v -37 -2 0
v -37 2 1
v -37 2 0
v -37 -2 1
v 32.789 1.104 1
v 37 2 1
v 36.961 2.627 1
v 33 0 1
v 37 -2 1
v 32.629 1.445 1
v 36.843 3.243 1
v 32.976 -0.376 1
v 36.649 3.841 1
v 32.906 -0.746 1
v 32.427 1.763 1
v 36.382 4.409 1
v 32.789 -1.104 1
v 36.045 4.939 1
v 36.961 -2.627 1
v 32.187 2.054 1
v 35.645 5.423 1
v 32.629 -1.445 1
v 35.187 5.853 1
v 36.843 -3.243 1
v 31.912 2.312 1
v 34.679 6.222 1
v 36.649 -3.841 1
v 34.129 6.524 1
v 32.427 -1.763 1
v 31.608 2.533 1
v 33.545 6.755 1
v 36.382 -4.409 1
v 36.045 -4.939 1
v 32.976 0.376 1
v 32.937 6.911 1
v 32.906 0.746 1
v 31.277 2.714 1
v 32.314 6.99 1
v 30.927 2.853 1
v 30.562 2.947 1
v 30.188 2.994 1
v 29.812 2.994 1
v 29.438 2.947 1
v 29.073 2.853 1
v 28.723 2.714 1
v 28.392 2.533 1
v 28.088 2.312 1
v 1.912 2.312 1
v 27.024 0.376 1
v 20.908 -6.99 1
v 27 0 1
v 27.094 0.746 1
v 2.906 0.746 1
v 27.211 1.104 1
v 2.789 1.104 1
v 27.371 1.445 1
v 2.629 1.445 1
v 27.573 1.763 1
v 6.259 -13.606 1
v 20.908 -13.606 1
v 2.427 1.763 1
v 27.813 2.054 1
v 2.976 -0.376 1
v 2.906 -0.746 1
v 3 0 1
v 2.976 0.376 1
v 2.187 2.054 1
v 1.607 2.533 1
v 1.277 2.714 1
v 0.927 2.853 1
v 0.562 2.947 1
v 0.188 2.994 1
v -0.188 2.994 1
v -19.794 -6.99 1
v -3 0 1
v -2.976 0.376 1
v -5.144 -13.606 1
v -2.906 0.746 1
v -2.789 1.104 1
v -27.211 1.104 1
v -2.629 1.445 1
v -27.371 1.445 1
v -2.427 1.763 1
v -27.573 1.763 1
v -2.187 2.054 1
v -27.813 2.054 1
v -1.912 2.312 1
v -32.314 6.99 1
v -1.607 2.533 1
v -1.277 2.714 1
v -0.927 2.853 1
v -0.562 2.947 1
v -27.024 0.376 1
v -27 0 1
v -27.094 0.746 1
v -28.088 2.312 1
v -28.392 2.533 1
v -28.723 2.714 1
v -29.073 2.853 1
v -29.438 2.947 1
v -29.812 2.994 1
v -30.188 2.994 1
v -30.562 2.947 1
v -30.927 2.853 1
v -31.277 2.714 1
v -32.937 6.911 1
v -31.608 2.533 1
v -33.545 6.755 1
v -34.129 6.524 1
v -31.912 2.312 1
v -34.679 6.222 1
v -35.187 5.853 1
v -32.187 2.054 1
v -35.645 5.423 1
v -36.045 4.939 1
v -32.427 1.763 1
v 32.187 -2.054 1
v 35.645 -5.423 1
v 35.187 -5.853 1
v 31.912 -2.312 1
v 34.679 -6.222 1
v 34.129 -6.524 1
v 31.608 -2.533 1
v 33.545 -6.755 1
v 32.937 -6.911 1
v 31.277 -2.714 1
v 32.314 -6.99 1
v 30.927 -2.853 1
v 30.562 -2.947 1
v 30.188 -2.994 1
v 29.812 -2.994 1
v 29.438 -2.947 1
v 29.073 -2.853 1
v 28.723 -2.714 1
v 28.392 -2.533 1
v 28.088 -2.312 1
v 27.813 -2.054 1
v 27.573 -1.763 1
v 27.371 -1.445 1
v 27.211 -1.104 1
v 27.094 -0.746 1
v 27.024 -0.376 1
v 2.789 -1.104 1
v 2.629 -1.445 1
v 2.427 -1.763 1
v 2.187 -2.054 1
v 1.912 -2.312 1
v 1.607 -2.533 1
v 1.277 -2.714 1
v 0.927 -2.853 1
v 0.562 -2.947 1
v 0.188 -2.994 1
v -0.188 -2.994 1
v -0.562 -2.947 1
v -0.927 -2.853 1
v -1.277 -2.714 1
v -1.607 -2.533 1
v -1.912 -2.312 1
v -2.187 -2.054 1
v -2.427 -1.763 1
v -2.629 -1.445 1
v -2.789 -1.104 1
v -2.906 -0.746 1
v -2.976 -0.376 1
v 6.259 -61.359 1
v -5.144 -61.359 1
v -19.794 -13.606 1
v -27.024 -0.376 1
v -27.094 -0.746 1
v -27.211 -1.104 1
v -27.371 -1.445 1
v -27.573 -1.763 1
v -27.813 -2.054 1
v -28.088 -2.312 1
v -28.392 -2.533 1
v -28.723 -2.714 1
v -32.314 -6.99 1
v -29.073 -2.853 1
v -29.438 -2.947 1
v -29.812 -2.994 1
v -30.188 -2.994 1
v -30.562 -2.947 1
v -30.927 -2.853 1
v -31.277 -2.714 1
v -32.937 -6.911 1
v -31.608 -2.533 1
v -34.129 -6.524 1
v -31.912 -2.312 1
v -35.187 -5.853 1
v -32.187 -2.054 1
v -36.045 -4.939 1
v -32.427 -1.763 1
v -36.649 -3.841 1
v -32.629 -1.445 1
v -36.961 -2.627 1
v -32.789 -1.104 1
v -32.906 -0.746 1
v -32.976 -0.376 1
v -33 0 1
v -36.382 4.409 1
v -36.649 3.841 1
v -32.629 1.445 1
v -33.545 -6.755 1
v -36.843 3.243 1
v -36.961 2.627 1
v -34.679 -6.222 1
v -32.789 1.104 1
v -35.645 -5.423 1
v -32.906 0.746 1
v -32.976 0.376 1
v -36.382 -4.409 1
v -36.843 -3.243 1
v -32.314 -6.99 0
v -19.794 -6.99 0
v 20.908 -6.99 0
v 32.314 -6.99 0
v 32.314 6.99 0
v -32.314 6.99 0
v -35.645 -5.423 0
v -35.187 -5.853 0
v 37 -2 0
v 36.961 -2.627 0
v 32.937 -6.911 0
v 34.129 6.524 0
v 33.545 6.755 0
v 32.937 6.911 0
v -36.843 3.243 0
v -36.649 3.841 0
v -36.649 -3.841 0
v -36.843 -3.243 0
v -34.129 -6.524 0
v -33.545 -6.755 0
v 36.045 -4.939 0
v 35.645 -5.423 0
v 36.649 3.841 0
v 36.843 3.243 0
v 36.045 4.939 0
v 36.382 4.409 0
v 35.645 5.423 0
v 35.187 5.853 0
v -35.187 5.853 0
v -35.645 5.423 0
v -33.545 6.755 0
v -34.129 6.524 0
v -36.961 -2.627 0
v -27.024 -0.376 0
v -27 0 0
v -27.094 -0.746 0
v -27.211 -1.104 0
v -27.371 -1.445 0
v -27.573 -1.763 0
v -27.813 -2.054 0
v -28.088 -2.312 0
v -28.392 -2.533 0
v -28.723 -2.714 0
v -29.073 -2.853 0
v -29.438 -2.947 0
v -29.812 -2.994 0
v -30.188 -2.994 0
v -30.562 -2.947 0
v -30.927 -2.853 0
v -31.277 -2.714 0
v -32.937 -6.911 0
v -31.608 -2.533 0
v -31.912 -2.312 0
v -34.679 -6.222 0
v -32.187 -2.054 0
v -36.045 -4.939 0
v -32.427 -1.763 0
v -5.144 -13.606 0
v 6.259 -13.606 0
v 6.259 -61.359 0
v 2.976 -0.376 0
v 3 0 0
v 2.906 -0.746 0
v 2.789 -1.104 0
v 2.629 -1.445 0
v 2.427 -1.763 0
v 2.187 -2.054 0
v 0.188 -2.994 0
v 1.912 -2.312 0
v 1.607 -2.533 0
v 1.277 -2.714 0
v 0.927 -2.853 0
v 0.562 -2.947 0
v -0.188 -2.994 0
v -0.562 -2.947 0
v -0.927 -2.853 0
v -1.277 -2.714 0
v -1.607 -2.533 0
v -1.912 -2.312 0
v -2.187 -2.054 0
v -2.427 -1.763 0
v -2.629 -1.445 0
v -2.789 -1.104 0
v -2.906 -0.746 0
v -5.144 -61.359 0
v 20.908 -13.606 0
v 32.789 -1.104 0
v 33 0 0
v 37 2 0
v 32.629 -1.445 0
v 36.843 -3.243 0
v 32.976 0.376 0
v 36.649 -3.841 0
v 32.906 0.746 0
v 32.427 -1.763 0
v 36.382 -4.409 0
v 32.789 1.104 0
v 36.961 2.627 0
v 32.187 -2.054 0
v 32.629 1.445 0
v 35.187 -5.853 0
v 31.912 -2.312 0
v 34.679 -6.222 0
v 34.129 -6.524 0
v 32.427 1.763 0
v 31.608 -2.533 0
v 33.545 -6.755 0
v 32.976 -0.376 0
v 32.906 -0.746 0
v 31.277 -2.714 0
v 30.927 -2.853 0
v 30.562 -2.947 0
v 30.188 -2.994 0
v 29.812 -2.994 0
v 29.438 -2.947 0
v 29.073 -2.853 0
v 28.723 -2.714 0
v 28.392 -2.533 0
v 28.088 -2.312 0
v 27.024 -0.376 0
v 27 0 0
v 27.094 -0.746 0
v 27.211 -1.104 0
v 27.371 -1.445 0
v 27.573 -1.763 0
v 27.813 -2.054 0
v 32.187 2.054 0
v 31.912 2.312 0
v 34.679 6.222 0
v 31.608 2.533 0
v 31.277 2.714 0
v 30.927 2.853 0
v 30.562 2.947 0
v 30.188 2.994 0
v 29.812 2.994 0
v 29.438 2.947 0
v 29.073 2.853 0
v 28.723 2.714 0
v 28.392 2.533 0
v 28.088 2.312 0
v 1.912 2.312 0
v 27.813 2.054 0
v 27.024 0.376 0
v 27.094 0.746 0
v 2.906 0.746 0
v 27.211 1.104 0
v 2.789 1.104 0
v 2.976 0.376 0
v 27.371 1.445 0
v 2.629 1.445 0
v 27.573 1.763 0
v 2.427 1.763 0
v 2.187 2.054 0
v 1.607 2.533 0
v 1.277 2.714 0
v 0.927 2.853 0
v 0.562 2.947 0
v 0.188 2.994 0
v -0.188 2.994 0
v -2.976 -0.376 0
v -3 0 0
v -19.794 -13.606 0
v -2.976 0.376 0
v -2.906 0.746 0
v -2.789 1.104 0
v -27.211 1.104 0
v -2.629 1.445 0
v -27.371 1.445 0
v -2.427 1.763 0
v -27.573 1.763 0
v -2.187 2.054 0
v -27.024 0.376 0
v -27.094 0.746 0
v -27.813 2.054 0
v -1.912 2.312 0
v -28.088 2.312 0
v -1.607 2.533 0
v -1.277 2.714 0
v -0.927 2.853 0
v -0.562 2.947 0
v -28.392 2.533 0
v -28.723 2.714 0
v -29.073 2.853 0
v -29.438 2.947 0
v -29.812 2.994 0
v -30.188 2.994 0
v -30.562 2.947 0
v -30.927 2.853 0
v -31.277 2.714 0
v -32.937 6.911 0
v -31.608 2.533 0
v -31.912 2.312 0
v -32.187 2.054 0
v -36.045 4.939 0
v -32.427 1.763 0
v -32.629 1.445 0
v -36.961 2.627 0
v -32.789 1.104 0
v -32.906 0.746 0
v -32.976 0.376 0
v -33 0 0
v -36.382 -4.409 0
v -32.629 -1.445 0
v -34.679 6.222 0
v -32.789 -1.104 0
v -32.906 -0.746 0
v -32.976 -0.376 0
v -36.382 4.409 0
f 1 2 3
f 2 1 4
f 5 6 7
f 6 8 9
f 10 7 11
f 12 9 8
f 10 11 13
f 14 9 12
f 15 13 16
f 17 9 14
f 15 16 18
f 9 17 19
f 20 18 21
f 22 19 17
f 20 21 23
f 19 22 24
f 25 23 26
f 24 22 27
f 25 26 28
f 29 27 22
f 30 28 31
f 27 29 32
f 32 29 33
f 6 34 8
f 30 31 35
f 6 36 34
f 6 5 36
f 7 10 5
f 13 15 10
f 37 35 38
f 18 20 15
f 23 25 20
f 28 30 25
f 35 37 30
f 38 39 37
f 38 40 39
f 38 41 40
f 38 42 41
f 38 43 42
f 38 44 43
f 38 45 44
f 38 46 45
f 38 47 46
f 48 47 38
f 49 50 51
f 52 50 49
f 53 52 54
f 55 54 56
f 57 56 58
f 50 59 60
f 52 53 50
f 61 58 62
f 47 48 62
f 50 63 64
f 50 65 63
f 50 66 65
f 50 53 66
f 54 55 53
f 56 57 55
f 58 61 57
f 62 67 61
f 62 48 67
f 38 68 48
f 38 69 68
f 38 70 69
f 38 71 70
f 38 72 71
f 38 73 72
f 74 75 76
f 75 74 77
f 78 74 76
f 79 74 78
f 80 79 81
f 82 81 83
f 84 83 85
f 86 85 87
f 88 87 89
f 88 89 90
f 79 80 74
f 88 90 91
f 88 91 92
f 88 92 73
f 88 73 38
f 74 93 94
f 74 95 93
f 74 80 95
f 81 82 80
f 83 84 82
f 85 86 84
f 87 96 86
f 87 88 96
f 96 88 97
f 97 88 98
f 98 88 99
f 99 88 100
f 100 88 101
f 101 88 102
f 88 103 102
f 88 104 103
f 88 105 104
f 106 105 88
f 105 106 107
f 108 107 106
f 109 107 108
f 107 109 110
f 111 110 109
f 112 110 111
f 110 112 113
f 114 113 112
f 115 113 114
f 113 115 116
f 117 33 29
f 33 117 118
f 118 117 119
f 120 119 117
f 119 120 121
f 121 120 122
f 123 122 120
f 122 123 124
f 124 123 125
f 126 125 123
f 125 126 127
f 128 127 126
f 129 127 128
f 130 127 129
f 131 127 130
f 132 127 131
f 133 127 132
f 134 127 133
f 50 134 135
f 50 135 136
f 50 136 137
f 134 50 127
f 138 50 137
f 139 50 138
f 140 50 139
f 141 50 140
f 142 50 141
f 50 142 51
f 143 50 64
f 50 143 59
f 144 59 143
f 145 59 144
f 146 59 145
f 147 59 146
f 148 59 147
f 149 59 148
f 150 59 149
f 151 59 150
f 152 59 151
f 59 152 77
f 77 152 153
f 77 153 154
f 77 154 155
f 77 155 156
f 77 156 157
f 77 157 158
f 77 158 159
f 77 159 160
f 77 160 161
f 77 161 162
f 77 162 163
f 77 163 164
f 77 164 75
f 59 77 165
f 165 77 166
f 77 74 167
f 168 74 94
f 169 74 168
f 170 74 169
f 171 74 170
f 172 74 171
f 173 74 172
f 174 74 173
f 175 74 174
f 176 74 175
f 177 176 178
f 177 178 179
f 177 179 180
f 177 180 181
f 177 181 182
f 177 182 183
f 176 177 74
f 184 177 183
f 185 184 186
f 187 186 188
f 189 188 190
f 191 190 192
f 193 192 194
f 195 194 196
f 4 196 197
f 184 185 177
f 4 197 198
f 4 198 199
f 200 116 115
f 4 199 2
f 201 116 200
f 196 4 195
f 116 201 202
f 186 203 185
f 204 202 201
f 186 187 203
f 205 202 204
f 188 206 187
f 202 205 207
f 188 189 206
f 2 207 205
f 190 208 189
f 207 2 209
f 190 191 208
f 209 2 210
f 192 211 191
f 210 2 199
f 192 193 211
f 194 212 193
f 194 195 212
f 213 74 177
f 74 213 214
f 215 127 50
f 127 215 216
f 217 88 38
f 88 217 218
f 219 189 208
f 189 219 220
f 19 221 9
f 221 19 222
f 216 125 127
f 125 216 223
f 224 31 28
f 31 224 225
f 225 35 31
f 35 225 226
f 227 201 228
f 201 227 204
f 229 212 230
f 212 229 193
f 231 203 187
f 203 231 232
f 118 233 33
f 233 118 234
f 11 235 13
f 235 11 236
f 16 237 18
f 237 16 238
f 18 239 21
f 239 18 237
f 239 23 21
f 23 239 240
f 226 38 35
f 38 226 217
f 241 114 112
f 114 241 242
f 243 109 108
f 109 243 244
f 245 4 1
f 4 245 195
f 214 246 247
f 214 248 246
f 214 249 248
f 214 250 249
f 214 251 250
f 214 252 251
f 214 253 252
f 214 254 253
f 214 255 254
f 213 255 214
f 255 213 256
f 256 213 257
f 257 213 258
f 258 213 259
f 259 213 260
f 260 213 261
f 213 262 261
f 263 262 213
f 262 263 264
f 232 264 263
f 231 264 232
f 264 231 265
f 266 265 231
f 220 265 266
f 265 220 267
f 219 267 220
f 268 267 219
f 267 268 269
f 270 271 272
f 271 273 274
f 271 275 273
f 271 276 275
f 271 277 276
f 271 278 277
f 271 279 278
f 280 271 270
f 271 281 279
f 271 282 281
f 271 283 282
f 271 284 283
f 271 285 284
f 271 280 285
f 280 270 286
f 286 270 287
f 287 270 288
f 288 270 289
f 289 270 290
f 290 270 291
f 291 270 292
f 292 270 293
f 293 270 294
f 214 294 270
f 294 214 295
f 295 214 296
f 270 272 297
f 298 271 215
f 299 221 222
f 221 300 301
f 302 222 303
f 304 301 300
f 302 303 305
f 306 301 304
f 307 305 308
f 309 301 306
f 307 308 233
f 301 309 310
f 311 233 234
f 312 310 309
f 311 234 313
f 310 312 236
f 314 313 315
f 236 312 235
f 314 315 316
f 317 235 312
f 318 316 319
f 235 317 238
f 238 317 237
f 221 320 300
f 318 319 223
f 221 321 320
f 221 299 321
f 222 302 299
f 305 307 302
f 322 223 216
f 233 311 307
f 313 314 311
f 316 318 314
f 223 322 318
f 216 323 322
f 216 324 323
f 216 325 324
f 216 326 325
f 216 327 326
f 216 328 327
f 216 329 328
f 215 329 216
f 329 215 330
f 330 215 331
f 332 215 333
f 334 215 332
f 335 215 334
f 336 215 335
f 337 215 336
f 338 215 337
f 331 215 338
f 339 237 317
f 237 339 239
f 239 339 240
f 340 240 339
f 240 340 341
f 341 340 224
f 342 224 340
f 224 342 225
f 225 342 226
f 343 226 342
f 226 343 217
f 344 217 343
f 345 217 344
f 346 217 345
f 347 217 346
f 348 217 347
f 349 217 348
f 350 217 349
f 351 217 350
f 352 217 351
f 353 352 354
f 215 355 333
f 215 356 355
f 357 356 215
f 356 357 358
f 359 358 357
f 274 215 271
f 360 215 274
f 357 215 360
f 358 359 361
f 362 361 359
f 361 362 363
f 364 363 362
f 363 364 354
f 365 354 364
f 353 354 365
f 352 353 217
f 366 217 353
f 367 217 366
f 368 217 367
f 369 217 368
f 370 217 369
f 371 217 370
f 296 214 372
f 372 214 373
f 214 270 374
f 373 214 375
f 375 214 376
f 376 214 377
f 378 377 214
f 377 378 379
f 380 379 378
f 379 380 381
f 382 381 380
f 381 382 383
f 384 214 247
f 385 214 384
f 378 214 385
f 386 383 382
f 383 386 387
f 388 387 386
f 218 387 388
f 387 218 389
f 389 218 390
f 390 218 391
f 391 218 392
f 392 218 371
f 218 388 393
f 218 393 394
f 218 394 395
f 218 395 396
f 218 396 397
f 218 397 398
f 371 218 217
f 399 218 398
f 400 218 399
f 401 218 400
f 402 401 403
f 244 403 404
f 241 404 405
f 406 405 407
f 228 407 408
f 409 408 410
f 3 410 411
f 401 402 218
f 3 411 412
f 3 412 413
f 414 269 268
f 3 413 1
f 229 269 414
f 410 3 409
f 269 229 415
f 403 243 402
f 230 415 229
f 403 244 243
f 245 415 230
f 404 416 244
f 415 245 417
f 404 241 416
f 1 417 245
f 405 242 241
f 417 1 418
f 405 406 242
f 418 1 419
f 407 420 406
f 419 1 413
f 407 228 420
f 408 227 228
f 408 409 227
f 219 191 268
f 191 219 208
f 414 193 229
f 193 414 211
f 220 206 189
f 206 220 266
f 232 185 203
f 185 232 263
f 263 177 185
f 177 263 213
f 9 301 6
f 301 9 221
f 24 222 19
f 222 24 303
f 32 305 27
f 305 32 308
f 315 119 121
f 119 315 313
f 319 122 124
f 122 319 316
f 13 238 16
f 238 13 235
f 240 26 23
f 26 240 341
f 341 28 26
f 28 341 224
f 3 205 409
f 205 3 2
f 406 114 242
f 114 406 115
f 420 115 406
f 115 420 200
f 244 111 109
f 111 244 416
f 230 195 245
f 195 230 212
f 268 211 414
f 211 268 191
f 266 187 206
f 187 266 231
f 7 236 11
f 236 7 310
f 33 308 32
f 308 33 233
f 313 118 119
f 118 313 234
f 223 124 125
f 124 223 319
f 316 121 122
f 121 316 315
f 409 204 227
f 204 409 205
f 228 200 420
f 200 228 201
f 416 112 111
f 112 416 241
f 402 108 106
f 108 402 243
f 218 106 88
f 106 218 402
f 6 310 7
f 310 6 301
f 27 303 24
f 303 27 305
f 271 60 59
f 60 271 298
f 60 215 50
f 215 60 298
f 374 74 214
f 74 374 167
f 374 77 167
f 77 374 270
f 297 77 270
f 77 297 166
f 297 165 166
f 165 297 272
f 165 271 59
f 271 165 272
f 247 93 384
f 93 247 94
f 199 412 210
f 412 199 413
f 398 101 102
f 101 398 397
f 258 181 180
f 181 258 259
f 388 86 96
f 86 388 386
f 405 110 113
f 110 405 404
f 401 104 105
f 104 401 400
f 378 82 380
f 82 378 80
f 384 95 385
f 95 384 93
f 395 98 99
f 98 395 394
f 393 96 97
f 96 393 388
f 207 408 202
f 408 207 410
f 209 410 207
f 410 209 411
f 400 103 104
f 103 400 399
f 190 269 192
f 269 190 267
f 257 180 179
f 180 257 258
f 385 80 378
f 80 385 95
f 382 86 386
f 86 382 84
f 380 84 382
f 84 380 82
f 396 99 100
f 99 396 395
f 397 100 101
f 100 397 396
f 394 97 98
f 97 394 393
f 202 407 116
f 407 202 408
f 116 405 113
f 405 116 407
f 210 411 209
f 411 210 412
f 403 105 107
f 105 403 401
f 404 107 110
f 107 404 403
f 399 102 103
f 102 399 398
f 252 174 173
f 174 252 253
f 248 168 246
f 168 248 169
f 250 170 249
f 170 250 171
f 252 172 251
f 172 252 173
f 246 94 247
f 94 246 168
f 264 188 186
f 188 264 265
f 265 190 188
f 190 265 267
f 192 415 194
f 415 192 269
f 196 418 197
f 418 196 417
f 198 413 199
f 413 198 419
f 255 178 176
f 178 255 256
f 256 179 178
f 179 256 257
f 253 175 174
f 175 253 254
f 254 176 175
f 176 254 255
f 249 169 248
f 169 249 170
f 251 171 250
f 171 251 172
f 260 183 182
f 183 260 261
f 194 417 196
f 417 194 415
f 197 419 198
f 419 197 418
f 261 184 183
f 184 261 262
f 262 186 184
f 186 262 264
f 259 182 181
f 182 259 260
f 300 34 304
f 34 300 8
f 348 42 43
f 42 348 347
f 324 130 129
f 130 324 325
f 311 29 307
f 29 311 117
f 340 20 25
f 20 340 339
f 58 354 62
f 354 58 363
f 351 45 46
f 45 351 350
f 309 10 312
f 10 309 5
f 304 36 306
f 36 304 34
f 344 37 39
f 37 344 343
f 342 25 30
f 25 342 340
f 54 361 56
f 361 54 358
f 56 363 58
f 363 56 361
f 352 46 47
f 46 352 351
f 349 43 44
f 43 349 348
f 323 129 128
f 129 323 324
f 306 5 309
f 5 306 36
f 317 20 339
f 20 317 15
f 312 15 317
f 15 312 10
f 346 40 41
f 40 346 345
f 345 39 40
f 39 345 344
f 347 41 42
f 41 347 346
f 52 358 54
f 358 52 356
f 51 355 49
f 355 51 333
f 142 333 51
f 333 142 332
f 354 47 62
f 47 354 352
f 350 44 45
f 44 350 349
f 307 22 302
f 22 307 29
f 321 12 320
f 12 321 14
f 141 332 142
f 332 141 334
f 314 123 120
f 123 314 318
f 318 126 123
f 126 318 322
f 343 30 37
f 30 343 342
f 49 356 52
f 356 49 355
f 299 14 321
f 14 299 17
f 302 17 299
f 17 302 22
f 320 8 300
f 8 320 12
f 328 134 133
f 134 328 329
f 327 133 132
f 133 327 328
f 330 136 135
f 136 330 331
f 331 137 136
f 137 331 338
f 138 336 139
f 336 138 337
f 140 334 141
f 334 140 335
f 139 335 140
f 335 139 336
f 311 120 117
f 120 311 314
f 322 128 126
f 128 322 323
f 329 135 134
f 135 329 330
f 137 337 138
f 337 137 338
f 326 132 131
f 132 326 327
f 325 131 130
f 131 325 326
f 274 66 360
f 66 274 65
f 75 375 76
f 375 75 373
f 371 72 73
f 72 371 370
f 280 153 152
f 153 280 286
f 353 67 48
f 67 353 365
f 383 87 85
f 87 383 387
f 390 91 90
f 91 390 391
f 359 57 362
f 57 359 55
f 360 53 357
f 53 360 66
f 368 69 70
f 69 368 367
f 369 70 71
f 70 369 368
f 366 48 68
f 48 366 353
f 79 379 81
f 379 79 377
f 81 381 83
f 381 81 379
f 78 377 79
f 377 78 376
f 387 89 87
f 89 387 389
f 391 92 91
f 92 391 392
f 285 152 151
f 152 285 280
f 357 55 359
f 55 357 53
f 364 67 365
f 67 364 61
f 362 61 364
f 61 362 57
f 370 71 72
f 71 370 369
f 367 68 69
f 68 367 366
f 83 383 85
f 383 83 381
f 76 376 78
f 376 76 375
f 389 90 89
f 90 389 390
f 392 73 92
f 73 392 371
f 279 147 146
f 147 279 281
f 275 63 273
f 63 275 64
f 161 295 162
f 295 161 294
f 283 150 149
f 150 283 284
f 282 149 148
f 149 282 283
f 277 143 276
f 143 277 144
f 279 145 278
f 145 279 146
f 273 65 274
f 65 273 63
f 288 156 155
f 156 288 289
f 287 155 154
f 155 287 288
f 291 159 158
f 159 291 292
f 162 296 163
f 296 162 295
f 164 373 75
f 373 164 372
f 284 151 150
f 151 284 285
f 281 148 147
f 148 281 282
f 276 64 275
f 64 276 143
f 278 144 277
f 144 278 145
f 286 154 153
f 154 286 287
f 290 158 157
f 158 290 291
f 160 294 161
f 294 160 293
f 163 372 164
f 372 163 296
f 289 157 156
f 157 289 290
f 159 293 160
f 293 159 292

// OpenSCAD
$fn = 50;


difference() {
	union() {
		translate(v = [0, 0, 0]) {
			rotate(a = [0, 0, 0]) {
				hull() {
					translate(v = [-32.0000000000, 2.0000000000, 0]) {
						rotate(a = [0, 0, 0]) {
							translate(v = [0, 0, 0]) {
								rotate(a = [0, 0, 0]) {
									cylinder(h = 1, r = 5);
								}
							}
						}
					}
					translate(v = [32.0000000000, 2.0000000000, 0]) {
						rotate(a = [0, 0, 0]) {
							translate(v = [0, 0, 0]) {
								rotate(a = [0, 0, 0]) {
									cylinder(h = 1, r = 5);
								}
							}
						}
					}
					translate(v = [-32.0000000000, -2.0000000000, 0]) {
						rotate(a = [0, 0, 0]) {
							translate(v = [0, 0, 0]) {
								rotate(a = [0, 0, 0]) {
									cylinder(h = 1, r = 5);
								}
							}
						}
					}
					translate(v = [32.0000000000, -2.0000000000, 0]) {
						rotate(a = [0, 0, 0]) {
							translate(v = [0, 0, 0]) {
								rotate(a = [0, 0, 0]) {
									cylinder(h = 1, r = 5);
								}
							}
						}
					}
				}
			}
		}
		translate(v = [0, -5, 0]) {
			rotate(a = [0, 0, 0]) {
				linear_extrude(height = 1) {
					text(font = "DejaVu Sans Mono:style=Bold", halign = "center", size = 57.0000000000, text = "T", valign = "top");
				}
			}
		}
	}
	union() {
		translate(v = [-30.0000000000, 0.0000000000, -125.0000000000]) {
			rotate(a = [0, 0, 0]) {
				cylinder(h = 250, r = 3.0000000000);
			}
		}
		translate(v = [30.0000000000, 0.0000000000, -125.0000000000]) {
			rotate(a = [0, 0, 0]) {
				cylinder(h = 250, r = 3.0000000000);
			}
		}
		translate(v = [30.0000000000, 0.0000000000, -125.0000000000]) {
			rotate(a = [0, 0, 0]) {
				cylinder(h = 250, r = 3.0000000000);
			}
		}
		translate(v = [0, 0, -125.0000000000]) {
			rotate(a = [0, 0, 0]) {
				cylinder(h = 250, r = 3.0000000000);
			}
		}
	}
}
